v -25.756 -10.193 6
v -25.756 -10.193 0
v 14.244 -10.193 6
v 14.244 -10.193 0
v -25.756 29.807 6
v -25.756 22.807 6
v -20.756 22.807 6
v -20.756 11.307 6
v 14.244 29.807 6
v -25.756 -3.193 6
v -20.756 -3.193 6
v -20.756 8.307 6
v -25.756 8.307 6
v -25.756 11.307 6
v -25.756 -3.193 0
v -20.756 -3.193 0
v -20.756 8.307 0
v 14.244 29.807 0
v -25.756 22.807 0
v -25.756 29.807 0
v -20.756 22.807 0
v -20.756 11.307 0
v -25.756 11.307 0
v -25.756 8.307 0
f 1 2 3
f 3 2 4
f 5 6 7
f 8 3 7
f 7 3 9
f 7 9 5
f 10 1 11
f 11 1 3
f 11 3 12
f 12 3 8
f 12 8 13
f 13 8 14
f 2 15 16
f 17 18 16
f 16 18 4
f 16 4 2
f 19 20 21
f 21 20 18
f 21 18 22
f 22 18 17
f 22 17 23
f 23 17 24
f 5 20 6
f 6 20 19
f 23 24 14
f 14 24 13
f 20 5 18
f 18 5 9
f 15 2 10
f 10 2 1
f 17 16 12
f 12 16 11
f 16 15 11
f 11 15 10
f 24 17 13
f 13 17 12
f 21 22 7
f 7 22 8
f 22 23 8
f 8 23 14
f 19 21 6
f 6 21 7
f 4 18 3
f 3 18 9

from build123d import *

# Parameters (mm, degrees)
SKETCH1_W           = 45
SKETCH1_H           = 40
BOSS_EXTRUDE1_DEPTH = 6
SKETCH2_W           = 5
SKETCH2_H           = 11.5
CUT_EXTRUDE1_DEPTH  = 6
SKETCH3_W           = 5
SKETCH3_H           = 9
SKETCH3_H_2         = 3
CUT_EXTRUDE3_DEPTH  = 6
SKETCH4_W           = 8.469823435
SKETCH4_H           = 40.874478331
CUT_EXTRUDE4_DEPTH  = 6


with BuildPart() as part:
    # Sketch1 → Boss-Extrude1 (new body)
    with BuildSketch(Plane.XY):
        with Locations((-3.25562701, 9.807073955)):
            Rectangle(SKETCH1_W, SKETCH1_H)
    extrude(amount=BOSS_EXTRUDE1_DEPTH)

    # Sketch2 → Cut-Extrude1 (cut)
    with BuildSketch(Plane.XY.offset(6)):
        with Locations((-23.25562701, 17.057073955)):
            Rectangle(SKETCH2_W, SKETCH2_H)
        with Locations((-23.25562701, 2.557073955)):
            Rectangle(SKETCH2_W, SKETCH2_H)
    extrude(amount=-CUT_EXTRUDE1_DEPTH, mode=Mode.SUBTRACT)

    # Sketch3 → Cut-Extrude3 (cut)
    with BuildSketch(Plane.XY.offset(6)):
        with Locations((16.74437299, 25.307073955)):
            Rectangle(SKETCH3_W, SKETCH3_H)
        with Locations((16.74437299, 9.807073955)):
            Rectangle(SKETCH3_W, SKETCH3_H_2)
        with Locations((16.74437299, -5.692926045)):
            Rectangle(SKETCH3_W, SKETCH3_H)
    extrude(amount=-CUT_EXTRUDE3_DEPTH, mode=Mode.SUBTRACT)

    # Sketch4 → Cut-Extrude4 (cut)
    with BuildSketch(Plane.XY.offset(6)):
        with Locations((18.479284707, 9.36983479)):
            Rectangle(SKETCH4_W, SKETCH4_H)
    extrude(amount=-CUT_EXTRUDE4_DEPTH, mode=Mode.SUBTRACT)


solid = part.part
